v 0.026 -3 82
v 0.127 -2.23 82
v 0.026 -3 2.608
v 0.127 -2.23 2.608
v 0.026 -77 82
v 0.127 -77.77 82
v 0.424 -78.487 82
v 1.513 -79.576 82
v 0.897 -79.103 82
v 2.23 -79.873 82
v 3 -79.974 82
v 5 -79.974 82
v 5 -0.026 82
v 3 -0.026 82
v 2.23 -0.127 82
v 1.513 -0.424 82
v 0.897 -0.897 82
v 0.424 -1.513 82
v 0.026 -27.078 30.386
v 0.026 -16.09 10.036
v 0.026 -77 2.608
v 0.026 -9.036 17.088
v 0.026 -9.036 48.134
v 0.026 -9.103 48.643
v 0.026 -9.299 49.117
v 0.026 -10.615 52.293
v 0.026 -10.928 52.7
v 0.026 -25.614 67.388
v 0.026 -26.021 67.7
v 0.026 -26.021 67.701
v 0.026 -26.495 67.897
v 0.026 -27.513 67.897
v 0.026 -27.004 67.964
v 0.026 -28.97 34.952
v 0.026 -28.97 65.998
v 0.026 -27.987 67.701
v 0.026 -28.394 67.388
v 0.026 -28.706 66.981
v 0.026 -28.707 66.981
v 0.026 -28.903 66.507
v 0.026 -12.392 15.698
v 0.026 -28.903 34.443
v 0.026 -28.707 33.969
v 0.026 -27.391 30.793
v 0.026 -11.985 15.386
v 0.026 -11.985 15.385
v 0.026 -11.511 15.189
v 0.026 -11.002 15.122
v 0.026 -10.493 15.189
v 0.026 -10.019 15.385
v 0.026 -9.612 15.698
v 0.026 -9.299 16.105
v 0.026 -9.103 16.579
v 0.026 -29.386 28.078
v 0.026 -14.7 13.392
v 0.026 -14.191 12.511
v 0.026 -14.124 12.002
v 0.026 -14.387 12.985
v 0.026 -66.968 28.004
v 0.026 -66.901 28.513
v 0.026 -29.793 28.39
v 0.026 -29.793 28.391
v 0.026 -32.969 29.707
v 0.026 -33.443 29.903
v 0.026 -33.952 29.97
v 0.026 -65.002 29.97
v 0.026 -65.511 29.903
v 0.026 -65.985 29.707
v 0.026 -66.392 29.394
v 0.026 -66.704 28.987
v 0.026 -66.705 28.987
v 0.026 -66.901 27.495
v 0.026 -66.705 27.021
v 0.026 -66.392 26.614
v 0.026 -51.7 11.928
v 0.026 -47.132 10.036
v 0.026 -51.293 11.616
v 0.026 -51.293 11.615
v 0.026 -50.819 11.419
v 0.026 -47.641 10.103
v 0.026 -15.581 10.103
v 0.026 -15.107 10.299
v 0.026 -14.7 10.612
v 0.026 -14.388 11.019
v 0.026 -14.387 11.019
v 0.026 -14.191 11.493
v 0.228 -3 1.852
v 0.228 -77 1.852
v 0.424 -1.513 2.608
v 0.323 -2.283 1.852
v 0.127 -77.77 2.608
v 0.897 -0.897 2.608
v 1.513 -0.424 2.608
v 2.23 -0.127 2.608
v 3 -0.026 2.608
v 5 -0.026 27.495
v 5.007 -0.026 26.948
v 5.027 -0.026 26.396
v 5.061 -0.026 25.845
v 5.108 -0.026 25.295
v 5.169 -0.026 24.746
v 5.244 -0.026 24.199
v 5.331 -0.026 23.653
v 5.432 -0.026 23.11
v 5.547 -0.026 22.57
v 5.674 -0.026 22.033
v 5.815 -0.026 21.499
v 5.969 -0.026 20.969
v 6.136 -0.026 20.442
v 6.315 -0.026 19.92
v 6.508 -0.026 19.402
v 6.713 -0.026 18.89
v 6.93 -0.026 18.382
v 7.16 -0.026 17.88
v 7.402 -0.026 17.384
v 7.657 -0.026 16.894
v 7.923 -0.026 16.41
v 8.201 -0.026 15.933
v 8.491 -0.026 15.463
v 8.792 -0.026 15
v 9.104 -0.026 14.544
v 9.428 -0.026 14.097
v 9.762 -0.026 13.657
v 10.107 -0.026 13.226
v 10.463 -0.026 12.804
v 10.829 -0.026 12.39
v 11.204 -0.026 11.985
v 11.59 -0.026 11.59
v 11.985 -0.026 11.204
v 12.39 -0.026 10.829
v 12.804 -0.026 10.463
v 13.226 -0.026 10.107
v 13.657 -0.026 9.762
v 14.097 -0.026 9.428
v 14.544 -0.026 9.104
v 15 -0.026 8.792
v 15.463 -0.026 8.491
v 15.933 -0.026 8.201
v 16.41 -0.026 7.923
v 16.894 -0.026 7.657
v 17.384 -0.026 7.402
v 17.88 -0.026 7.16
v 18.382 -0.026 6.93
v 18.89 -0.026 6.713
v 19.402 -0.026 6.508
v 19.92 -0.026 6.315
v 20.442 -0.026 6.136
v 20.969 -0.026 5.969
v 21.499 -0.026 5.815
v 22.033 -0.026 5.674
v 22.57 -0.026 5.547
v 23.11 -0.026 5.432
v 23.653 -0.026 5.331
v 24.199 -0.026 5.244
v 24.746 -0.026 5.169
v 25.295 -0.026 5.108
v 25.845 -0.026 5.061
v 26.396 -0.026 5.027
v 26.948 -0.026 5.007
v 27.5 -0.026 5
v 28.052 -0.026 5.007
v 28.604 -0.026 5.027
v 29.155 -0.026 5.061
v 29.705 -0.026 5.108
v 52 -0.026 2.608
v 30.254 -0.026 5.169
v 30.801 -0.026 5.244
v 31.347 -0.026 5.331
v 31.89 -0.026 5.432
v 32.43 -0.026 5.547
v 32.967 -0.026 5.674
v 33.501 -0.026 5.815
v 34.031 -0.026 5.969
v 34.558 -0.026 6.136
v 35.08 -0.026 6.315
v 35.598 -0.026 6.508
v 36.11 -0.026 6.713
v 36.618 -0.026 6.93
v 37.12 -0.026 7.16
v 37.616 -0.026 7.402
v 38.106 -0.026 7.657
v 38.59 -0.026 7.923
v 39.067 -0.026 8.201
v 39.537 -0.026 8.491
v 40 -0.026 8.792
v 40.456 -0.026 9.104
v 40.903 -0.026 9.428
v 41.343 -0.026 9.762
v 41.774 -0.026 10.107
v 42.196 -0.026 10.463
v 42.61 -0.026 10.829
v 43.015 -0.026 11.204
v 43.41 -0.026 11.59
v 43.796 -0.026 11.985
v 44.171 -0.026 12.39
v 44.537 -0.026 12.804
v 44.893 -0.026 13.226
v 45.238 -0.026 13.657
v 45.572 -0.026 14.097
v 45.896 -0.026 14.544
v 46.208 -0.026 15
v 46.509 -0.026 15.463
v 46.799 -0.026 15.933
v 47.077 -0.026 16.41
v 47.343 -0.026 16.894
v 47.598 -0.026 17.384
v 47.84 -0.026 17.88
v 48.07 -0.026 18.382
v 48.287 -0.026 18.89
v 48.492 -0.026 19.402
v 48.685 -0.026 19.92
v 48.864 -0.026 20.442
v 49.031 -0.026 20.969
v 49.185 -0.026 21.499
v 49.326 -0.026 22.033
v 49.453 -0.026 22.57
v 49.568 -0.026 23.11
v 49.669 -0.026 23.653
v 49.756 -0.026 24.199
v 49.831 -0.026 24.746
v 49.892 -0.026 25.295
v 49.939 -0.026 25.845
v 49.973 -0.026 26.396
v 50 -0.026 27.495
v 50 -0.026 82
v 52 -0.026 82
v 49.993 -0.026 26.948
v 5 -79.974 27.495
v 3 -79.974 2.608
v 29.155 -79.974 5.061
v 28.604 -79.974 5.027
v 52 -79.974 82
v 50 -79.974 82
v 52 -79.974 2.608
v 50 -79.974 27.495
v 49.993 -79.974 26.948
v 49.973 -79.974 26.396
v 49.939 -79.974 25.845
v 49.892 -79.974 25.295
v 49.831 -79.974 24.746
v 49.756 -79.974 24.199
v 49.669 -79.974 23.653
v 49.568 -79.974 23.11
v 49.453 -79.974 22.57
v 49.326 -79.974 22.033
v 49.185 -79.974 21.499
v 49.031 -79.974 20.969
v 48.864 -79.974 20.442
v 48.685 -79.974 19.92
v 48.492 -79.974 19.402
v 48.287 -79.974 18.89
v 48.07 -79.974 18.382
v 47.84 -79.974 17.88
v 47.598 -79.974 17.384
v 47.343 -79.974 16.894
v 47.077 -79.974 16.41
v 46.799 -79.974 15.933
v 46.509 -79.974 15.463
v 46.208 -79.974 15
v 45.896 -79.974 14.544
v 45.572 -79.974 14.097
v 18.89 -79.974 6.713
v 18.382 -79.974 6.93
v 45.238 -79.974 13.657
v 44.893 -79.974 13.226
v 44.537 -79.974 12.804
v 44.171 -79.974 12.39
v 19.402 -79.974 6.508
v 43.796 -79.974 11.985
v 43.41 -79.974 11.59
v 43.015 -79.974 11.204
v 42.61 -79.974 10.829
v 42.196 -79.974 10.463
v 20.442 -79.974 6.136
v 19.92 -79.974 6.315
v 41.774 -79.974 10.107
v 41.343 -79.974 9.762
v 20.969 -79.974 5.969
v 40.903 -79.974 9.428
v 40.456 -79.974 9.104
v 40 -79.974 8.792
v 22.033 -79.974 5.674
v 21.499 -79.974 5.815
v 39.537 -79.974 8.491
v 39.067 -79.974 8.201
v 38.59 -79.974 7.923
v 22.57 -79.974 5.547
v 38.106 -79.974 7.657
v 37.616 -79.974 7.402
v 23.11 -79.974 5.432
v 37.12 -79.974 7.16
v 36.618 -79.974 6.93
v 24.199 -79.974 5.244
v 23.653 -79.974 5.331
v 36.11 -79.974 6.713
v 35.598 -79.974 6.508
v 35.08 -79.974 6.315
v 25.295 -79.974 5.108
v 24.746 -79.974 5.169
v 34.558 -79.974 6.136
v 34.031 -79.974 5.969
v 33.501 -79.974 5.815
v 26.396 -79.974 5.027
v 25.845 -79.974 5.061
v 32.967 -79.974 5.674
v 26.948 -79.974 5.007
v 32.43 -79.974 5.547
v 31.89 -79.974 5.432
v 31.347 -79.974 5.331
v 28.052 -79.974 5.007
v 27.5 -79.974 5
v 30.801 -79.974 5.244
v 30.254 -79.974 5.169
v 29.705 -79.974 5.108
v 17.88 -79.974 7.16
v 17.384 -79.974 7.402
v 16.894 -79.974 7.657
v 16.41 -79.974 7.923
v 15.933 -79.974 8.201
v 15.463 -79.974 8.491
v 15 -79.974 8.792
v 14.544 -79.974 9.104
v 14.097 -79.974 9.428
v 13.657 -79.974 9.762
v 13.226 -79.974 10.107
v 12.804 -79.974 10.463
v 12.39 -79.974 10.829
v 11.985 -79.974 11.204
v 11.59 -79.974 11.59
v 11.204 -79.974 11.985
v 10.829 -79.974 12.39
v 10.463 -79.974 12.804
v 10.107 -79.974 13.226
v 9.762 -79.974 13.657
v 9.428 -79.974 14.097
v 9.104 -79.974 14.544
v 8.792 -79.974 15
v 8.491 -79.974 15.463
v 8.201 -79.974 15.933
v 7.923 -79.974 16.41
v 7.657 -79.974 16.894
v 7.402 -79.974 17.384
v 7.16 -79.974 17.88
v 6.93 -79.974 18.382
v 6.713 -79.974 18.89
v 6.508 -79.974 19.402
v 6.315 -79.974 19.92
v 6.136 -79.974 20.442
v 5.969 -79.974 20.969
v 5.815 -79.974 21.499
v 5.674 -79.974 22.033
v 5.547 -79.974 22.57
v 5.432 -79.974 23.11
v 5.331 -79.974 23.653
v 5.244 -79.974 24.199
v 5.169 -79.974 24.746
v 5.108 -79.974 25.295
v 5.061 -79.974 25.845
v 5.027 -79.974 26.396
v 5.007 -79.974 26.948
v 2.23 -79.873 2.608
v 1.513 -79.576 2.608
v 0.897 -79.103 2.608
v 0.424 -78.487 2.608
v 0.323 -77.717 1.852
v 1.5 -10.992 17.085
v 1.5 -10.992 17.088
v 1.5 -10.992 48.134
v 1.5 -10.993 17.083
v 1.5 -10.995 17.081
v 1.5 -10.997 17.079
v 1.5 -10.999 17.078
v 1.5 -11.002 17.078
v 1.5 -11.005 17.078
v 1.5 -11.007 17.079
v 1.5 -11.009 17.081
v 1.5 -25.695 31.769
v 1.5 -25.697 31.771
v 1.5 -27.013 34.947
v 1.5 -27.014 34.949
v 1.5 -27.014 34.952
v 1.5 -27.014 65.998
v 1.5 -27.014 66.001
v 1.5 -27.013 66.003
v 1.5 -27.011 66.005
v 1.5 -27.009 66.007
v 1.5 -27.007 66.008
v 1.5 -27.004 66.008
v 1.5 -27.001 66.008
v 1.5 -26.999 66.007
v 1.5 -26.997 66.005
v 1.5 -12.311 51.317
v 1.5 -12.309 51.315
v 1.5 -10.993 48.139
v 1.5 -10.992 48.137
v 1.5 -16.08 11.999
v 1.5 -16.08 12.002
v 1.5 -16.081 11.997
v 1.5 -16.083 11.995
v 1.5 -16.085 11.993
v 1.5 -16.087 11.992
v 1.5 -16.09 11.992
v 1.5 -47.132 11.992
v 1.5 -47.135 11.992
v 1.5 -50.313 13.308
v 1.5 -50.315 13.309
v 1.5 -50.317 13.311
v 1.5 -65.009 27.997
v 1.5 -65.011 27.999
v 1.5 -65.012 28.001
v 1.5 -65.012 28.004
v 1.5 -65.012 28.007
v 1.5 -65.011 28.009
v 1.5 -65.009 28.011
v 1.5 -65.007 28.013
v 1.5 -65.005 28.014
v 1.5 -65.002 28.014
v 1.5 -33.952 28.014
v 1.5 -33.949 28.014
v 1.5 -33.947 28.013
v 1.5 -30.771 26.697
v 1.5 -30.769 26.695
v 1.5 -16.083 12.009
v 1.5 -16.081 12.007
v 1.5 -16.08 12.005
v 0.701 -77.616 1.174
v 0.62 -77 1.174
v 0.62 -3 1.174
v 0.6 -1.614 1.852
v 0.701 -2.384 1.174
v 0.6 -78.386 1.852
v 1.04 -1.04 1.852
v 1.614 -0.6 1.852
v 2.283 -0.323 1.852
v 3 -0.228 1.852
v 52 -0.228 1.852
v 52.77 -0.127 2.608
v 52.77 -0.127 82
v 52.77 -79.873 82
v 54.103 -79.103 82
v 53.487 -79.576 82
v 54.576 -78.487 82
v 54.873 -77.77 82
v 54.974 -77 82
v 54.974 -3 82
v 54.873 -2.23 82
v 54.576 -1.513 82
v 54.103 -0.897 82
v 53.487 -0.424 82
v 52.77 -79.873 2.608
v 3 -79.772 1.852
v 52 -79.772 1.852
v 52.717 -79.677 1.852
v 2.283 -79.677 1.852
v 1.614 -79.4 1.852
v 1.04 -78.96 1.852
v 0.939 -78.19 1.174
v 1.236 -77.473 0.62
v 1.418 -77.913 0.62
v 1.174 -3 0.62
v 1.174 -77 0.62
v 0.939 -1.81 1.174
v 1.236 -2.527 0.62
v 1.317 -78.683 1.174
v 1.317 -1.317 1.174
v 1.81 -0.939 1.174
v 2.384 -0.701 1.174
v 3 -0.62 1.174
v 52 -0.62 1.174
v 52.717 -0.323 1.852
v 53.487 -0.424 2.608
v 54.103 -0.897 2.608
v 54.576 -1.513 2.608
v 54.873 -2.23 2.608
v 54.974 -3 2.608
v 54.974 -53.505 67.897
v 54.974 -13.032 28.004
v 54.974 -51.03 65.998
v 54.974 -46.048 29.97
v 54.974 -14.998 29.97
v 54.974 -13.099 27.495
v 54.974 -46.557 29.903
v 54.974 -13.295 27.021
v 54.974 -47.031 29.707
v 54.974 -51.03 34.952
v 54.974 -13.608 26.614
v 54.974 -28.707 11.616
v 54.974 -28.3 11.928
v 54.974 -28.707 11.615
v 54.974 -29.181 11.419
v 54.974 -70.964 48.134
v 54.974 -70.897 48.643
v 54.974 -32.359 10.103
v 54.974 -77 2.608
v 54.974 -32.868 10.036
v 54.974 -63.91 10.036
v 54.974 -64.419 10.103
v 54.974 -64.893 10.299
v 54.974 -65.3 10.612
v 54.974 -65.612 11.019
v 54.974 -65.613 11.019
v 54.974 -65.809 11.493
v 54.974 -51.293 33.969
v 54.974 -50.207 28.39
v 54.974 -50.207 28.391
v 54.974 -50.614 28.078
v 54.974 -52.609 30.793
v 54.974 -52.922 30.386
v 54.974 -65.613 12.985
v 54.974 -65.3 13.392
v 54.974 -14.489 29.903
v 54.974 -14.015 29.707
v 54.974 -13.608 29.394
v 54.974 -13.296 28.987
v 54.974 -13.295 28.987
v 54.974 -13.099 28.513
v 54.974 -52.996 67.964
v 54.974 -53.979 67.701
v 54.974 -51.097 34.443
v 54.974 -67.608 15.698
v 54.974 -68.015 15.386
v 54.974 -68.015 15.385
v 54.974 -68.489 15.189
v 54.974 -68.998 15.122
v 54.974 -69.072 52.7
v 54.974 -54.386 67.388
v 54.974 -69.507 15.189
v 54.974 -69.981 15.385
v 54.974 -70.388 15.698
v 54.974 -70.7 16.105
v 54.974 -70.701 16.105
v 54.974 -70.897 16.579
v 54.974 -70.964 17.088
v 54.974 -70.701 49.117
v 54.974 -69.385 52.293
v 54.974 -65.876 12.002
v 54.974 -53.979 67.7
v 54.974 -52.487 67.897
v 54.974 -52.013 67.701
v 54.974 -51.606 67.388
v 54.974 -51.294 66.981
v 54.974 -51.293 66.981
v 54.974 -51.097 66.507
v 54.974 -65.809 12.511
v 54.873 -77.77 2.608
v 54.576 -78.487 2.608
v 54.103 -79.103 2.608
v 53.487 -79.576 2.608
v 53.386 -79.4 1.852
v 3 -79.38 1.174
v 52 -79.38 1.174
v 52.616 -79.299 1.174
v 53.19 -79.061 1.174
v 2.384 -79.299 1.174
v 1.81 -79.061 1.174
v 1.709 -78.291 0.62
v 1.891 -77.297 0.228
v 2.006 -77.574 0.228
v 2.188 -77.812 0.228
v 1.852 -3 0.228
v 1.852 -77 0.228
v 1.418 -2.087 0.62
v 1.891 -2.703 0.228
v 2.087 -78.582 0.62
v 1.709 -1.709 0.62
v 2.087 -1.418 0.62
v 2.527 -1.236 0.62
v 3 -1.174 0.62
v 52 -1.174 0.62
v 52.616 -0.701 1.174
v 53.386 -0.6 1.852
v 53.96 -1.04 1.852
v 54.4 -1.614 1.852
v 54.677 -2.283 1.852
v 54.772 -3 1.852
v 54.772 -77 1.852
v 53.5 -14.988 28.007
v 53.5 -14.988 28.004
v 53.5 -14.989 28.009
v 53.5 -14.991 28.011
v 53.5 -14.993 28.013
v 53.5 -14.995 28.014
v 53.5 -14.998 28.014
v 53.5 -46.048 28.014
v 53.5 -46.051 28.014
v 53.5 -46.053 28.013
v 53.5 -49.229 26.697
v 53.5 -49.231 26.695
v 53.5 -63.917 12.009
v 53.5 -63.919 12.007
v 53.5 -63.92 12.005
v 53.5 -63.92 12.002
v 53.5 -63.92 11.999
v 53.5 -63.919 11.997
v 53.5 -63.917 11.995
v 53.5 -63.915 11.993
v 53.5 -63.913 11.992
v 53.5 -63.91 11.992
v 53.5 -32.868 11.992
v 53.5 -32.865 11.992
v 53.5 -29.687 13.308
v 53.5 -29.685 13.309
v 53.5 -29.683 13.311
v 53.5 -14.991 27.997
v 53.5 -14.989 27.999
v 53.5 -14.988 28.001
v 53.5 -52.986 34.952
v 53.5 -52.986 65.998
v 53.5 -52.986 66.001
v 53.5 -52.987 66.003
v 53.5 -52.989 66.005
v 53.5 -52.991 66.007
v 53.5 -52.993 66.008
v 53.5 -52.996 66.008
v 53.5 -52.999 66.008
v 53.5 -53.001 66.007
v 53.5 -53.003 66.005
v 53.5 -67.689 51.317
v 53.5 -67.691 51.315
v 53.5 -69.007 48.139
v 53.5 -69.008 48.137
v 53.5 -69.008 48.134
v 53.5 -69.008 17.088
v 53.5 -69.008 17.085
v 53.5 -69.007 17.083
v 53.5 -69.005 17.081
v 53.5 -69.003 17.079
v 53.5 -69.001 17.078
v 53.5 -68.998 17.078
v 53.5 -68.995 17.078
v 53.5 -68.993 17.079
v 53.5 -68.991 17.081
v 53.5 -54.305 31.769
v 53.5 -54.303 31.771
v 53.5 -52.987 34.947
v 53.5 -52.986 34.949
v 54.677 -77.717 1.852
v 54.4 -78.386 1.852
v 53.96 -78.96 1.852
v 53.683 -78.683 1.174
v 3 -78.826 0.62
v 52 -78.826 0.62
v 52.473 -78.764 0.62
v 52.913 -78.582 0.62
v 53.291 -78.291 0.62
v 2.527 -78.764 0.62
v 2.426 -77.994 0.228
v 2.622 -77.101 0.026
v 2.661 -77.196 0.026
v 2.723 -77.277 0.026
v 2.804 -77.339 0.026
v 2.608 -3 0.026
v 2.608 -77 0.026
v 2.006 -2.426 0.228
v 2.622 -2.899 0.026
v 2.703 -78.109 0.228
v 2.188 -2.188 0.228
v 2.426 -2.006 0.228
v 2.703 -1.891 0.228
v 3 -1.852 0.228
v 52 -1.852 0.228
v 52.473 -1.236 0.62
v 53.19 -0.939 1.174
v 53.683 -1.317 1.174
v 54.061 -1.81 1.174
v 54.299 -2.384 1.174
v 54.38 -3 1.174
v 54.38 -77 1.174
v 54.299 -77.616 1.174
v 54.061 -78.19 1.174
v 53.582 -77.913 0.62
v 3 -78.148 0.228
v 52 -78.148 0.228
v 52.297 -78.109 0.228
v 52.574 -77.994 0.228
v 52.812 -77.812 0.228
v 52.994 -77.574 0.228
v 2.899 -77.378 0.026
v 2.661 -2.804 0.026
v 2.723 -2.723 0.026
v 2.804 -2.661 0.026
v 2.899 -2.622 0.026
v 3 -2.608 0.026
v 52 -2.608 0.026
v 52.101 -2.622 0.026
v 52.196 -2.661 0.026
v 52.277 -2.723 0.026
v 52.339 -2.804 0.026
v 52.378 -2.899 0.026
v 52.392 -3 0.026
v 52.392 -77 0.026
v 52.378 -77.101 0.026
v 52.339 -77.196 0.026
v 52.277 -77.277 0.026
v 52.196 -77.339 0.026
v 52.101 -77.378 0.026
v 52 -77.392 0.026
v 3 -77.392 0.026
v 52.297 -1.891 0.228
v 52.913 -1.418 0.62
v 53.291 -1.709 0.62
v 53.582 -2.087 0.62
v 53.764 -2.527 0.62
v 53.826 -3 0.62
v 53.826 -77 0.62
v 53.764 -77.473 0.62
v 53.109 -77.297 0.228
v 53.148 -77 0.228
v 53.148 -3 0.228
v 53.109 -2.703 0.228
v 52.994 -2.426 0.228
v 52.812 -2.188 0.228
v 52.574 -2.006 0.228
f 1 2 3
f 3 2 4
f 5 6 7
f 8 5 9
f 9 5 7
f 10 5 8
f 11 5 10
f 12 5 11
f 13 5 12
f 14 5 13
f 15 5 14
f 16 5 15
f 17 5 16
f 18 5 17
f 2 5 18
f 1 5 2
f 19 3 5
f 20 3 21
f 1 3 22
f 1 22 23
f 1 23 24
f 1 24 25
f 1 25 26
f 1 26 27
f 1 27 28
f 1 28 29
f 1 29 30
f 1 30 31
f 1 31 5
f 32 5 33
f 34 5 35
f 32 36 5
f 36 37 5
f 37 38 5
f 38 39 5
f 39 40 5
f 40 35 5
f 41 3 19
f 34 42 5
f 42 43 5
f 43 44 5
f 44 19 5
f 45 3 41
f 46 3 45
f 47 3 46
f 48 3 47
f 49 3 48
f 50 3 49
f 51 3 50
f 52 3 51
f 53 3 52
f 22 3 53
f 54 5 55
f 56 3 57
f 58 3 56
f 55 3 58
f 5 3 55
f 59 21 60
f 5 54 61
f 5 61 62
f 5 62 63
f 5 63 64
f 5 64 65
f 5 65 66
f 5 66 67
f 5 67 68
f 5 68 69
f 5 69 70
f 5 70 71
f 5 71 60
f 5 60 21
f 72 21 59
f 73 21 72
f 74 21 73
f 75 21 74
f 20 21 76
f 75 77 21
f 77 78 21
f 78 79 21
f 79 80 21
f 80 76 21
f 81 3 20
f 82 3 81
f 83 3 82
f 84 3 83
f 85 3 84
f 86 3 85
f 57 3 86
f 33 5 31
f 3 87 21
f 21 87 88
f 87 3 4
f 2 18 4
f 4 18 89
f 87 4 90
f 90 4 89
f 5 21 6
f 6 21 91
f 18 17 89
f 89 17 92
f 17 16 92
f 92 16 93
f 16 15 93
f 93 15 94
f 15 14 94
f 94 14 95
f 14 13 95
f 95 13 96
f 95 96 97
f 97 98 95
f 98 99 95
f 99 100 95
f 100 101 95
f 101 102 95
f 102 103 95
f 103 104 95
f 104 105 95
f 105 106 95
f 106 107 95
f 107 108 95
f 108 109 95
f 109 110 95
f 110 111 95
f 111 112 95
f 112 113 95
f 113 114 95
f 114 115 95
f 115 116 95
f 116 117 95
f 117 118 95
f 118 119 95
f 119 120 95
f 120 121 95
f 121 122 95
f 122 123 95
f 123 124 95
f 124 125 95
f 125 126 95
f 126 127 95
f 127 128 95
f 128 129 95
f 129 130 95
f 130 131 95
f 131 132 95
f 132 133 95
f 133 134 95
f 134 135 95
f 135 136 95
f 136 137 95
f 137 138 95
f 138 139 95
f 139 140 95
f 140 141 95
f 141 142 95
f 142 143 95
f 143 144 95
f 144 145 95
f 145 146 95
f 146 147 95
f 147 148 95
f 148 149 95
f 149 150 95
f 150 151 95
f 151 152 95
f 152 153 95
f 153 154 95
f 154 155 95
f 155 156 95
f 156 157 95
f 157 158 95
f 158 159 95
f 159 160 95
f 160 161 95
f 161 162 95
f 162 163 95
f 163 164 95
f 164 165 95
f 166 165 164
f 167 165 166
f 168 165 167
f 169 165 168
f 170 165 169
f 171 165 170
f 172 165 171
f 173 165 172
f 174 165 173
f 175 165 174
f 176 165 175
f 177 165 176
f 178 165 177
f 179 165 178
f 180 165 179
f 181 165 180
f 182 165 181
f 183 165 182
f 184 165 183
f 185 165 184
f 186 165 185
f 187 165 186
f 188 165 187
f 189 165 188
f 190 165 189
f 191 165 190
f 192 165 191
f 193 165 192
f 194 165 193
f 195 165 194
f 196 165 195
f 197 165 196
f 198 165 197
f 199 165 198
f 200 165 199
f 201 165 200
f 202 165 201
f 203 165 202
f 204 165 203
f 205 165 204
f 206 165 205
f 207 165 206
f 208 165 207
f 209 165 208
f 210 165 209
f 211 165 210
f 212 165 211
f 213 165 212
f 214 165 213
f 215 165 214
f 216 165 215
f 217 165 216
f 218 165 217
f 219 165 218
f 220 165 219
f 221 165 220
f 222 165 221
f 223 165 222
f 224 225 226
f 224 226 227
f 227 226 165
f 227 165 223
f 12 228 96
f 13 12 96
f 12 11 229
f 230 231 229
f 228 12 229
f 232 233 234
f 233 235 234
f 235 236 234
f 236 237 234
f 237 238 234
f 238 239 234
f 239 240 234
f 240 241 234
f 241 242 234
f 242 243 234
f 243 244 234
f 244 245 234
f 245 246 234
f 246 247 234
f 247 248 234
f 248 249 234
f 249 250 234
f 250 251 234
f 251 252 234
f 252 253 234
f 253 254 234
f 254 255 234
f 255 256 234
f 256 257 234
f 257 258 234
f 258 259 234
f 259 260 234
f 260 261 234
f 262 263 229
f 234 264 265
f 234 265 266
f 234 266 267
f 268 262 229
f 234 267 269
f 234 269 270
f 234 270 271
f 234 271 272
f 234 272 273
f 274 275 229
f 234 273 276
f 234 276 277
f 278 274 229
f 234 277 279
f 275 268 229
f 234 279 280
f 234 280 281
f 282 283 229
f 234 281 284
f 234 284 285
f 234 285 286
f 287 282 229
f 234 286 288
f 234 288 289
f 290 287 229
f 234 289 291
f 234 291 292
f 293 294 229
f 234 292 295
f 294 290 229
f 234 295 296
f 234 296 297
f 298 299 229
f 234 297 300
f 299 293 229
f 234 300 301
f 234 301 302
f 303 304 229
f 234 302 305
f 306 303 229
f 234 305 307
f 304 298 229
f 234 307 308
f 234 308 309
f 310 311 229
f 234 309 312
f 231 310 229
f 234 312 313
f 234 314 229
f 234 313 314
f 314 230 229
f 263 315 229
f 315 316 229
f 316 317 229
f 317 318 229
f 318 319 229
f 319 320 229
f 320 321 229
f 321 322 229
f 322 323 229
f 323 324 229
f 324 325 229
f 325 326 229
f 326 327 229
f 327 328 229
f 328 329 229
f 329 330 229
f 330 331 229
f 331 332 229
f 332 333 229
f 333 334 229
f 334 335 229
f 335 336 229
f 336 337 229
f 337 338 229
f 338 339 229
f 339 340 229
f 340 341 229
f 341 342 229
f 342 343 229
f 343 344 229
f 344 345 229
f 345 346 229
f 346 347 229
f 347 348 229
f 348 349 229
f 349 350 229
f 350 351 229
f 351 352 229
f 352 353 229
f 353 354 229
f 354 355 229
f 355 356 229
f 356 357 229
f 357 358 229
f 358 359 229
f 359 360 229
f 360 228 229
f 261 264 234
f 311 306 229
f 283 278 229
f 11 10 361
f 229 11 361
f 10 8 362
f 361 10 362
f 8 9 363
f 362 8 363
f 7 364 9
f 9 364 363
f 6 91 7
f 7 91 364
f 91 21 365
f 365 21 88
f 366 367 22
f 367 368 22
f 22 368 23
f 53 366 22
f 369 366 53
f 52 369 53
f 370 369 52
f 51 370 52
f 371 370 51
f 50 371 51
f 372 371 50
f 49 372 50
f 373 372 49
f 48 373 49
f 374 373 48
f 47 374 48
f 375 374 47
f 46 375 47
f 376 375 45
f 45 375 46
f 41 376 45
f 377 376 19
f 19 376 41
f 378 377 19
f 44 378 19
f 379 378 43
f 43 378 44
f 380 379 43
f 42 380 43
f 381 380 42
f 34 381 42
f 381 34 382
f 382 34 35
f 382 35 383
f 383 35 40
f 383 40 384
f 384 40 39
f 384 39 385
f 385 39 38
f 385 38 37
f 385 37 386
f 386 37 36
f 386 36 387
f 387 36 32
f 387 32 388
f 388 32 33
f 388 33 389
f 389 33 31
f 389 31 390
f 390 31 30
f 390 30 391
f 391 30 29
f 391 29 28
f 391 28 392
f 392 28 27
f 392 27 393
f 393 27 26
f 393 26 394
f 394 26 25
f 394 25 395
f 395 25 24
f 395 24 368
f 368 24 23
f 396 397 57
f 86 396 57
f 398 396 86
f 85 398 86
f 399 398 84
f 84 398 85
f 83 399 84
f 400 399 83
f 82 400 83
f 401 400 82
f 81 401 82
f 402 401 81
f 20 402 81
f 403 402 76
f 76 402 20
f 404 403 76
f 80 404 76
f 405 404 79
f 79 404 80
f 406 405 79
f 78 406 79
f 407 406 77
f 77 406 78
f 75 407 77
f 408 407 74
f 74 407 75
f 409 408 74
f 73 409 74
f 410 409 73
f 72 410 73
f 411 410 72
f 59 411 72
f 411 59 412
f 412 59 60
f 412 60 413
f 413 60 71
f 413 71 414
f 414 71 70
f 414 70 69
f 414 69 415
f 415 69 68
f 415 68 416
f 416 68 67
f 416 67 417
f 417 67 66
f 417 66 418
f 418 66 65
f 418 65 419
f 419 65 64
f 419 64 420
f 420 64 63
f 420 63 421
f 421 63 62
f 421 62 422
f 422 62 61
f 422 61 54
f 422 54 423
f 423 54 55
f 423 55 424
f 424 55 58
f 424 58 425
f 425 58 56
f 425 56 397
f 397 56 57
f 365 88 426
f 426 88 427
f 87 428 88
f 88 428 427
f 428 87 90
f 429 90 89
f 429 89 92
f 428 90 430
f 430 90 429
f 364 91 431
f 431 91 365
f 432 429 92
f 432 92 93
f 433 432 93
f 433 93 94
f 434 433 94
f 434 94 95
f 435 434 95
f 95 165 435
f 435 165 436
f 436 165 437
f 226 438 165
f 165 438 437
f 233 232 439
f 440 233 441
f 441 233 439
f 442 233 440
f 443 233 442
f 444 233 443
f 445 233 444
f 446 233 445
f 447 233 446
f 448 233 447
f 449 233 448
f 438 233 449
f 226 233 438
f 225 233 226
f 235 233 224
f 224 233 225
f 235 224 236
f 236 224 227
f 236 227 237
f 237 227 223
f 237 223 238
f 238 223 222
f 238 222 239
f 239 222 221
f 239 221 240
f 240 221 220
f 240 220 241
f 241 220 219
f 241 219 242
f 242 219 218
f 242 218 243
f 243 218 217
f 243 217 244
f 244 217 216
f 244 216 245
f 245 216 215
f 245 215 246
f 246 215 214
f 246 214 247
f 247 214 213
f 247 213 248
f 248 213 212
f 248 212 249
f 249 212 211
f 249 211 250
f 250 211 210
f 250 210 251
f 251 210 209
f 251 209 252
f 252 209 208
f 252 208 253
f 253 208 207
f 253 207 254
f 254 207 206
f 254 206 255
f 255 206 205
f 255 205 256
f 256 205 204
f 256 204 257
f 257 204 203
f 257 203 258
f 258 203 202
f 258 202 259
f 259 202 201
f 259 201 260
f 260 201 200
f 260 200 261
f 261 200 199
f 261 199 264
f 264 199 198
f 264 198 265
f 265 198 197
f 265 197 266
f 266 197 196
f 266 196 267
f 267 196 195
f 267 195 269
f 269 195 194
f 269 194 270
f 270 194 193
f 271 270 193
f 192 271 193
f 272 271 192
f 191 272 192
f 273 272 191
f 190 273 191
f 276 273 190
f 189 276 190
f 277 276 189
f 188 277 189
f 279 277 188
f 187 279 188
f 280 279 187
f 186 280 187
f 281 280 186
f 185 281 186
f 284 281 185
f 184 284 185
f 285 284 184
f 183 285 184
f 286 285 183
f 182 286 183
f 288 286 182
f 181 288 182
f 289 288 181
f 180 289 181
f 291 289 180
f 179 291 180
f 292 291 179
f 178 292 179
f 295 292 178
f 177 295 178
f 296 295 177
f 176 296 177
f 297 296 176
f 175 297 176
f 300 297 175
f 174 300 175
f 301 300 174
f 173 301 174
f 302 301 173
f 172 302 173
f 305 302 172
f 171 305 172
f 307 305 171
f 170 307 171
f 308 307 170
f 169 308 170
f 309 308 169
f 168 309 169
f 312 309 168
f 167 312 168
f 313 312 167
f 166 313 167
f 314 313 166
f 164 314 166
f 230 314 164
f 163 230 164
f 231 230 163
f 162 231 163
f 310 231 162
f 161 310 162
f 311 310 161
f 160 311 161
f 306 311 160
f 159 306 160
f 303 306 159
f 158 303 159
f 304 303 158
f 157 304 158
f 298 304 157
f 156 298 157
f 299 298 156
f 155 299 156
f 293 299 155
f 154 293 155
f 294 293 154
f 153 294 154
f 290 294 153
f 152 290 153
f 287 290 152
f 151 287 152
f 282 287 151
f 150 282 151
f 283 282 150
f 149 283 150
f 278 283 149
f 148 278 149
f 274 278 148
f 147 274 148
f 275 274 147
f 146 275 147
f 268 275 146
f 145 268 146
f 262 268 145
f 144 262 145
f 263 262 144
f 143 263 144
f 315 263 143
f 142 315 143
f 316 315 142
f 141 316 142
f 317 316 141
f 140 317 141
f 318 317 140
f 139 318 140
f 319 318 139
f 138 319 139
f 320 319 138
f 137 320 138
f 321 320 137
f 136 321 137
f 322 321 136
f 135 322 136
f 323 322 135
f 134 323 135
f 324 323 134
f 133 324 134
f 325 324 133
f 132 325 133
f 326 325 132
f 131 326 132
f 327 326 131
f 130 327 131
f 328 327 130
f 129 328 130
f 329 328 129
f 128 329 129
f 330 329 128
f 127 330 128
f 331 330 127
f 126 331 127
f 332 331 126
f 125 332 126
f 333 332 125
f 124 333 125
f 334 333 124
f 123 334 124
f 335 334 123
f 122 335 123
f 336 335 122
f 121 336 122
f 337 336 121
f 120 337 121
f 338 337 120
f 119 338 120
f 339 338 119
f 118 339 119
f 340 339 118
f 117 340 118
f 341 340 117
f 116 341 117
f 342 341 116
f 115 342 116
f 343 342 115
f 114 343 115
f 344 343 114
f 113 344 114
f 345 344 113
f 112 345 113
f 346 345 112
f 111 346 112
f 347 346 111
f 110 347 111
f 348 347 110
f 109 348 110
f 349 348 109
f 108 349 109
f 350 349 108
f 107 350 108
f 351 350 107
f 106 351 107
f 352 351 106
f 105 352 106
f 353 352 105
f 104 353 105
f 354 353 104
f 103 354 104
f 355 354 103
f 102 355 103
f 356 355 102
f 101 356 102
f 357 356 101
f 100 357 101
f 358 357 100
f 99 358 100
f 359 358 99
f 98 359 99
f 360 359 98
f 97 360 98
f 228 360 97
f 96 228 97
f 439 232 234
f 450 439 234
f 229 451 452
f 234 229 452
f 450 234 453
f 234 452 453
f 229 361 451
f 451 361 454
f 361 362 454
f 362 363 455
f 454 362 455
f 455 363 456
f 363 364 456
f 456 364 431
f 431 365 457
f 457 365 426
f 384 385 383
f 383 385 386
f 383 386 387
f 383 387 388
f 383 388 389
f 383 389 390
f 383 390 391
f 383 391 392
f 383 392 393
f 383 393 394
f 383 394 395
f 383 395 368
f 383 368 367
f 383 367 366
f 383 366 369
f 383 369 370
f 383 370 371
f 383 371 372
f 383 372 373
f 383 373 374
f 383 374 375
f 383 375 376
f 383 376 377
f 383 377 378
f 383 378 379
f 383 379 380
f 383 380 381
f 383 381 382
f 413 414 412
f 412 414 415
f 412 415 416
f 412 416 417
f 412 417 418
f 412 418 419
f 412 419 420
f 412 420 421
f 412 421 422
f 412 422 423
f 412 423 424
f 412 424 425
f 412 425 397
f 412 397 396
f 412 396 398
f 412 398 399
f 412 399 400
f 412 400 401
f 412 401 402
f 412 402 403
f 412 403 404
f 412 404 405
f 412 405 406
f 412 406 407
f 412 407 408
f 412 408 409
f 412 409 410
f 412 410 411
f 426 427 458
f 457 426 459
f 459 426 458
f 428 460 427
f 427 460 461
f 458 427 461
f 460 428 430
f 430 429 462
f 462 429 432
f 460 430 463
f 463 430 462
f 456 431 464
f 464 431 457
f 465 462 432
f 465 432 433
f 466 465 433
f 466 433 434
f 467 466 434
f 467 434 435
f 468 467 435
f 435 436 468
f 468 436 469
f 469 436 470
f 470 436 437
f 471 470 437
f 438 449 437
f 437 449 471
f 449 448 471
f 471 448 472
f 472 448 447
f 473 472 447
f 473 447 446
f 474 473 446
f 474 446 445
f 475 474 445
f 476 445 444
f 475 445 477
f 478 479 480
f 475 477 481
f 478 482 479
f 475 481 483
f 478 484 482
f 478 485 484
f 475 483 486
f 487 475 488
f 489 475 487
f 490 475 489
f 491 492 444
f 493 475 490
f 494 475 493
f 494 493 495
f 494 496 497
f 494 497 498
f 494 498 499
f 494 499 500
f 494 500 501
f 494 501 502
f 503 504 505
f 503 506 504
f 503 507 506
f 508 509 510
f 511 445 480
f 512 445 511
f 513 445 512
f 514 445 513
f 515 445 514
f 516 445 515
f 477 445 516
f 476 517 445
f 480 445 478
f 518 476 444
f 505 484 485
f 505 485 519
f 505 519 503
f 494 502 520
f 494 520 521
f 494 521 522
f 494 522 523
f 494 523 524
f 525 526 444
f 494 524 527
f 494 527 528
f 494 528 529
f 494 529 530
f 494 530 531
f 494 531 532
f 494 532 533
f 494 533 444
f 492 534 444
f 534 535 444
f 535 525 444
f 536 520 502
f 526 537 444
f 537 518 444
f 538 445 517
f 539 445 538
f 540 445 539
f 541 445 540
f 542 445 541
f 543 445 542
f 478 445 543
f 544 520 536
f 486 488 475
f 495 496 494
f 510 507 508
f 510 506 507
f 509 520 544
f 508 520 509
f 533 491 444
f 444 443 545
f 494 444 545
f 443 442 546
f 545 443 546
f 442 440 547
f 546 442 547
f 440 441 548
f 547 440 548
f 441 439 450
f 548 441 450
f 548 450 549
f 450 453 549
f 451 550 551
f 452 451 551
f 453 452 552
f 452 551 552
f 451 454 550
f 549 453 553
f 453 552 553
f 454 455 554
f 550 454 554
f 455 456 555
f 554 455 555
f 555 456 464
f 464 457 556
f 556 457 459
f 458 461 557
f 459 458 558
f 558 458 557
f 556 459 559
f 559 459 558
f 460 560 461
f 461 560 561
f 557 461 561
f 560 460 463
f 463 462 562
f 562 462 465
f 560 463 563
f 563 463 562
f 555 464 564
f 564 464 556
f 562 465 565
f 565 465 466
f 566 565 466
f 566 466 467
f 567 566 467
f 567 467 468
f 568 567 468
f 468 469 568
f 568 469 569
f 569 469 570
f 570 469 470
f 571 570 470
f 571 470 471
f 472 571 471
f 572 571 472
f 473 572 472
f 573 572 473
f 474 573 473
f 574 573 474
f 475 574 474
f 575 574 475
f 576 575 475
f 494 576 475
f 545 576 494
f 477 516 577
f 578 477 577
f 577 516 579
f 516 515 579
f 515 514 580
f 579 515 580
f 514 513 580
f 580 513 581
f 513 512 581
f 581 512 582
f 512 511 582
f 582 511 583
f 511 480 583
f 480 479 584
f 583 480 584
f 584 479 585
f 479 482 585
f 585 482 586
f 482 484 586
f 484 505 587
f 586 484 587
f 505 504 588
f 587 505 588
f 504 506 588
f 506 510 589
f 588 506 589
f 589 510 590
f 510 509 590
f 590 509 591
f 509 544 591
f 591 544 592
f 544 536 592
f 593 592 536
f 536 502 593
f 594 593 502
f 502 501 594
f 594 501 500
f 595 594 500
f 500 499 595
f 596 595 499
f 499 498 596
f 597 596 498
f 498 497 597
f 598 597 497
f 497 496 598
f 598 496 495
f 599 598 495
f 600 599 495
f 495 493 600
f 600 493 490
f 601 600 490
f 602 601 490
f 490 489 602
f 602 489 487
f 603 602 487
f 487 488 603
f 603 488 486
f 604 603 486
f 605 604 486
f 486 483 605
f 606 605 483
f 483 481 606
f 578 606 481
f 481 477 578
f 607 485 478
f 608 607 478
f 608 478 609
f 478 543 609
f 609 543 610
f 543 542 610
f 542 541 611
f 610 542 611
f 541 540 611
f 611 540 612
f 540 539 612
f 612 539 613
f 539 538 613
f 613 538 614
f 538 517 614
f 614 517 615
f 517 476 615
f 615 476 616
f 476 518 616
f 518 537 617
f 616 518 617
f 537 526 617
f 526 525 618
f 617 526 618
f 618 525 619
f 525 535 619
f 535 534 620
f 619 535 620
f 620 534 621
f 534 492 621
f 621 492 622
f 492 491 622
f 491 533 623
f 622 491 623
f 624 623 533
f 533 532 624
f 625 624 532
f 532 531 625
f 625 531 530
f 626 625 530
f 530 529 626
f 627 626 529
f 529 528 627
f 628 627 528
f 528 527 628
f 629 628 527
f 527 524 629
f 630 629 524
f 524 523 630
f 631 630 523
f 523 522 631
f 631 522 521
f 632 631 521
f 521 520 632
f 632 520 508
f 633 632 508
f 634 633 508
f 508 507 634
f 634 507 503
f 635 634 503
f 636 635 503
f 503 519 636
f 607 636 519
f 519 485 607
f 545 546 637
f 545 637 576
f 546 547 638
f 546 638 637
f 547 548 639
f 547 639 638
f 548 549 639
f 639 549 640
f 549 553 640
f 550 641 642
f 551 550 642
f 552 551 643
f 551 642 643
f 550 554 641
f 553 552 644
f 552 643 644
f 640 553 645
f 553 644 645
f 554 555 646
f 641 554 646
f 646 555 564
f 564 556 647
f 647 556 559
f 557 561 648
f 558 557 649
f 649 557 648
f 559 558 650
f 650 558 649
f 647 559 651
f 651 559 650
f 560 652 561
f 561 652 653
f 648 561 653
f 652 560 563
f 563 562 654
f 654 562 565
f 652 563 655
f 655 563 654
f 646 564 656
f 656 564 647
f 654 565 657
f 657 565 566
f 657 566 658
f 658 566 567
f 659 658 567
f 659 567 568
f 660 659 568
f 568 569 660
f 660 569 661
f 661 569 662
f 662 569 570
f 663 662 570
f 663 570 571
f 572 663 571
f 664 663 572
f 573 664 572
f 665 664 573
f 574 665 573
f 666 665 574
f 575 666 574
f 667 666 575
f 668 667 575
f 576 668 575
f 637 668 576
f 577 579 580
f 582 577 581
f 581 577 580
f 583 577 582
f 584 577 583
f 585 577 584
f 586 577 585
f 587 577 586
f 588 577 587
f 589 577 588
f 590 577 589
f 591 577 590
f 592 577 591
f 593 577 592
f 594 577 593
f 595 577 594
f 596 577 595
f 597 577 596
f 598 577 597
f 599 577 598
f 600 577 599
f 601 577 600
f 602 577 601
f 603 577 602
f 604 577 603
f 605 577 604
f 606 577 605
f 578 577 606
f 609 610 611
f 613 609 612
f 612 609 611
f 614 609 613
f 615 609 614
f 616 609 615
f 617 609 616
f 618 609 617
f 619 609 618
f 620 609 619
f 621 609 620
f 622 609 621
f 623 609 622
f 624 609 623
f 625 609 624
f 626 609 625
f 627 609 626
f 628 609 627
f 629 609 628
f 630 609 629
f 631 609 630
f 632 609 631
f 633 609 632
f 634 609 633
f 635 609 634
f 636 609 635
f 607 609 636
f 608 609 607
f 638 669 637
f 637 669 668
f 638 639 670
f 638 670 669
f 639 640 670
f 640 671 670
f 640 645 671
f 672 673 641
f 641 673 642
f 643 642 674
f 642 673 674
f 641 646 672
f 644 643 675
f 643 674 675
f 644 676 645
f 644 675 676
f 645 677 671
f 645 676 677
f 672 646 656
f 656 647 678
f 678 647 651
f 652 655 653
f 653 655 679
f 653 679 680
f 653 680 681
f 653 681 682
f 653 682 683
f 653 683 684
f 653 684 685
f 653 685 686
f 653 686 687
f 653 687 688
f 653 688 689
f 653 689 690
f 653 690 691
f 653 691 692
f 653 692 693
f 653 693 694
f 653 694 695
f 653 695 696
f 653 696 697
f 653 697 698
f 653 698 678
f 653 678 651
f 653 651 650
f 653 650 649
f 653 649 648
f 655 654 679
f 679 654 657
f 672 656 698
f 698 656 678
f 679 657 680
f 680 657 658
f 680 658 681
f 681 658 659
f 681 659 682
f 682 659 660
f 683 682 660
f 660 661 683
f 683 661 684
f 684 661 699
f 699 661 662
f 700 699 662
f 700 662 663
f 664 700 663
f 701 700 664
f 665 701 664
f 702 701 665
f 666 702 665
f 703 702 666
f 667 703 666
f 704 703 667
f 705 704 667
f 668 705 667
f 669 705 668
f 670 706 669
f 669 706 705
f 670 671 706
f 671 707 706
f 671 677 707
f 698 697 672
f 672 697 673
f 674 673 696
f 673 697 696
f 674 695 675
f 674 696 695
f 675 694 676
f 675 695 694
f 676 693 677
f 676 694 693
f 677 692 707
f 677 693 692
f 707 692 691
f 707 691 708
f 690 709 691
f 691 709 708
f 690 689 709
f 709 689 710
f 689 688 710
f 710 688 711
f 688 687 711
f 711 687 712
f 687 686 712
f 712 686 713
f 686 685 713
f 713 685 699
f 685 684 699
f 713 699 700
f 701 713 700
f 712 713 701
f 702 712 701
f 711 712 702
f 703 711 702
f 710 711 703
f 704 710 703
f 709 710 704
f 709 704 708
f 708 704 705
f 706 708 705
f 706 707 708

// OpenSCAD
// file: wibas_nur_Bildmarke_cmyk.scad
module path3032() {
  polygon(points=
    [[12.499, -3.567], [11.841, -5.155], [4.498, -12.499], [4.498, 3.024], [5.156, 4.612], [12.499, 11.956], [12.499, -3.567]]
    , paths=
    [[0, 1, 2, 3, 4, 5, 6]]
    );}
module path3034() {
  polygon(points=
    [[-12.501, 4.498], [3.024, 4.498], [4.612, 5.156], [11.955, 12.499], [-3.566, 12.499], [-5.155, 11.841]]
    , paths=
    [[0, 1, 2, 3, 4, 5, 0]]
    );}
// main file
// tunnel for brio train
include <wibas_nur_Bildmarke_cmyk.scad>;

XCL = 45; // x clearance
ZCL = 77; // z clearance
LENGTH = 80; // tunnel length
THICKNESS = 5; // wall thickness
RR = 3; // rounded corner radius
qq=.01;

X = XCL+THICKNESS*2;
Y = LENGTH;
Z = ZCL+THICKNESS;

module logo() {
    minkowski() {        
        linear_extrude(height=qq) scale(2){
            translate([RR/1.5, 0, 0]) path3032();
            translate([0, RR/1.5, 0]) path3034();
        }
        cylinder(r1=qq, r2=RR/1.5, h=RR/2, center=false, $fn=24);
    }
}

module tunnel() {
    difference() {
        translate([RR, RR, 0]) difference() {
            minkowski() {
                cube(size=[X-(RR*2), Y-(RR*2), Z-(RR)], center=false);
                sphere(r=RR, $fn=24);
            }
            translate([0, 0, -50]) cube(size=[X*3, Y*3, 100], center=true);
        }
        translate([THICKNESS+XCL/2, 0, ZCL-XCL/2]) rotate([90, 0, 0]) cylinder(r=XCL/2, h=1000, center=true, $fn=256);
        translate([THICKNESS, -Y/2, -qq/2]) cube(size=[XCL, Y*2, ZCL-(XCL/2)+qq], center=false);
        translate([RR/2, Y/2, Z/2]) rotate([90, 0, 0]) rotate([0, -90, 0]) logo();
        translate([X-RR/2, Y/2, Z/2]) rotate([90, 0, 0]) rotate([0, 90, 0]) logo();
    }
 

}

translate([0, 0, Z]) rotate([180, 0, 0]) tunnel();
